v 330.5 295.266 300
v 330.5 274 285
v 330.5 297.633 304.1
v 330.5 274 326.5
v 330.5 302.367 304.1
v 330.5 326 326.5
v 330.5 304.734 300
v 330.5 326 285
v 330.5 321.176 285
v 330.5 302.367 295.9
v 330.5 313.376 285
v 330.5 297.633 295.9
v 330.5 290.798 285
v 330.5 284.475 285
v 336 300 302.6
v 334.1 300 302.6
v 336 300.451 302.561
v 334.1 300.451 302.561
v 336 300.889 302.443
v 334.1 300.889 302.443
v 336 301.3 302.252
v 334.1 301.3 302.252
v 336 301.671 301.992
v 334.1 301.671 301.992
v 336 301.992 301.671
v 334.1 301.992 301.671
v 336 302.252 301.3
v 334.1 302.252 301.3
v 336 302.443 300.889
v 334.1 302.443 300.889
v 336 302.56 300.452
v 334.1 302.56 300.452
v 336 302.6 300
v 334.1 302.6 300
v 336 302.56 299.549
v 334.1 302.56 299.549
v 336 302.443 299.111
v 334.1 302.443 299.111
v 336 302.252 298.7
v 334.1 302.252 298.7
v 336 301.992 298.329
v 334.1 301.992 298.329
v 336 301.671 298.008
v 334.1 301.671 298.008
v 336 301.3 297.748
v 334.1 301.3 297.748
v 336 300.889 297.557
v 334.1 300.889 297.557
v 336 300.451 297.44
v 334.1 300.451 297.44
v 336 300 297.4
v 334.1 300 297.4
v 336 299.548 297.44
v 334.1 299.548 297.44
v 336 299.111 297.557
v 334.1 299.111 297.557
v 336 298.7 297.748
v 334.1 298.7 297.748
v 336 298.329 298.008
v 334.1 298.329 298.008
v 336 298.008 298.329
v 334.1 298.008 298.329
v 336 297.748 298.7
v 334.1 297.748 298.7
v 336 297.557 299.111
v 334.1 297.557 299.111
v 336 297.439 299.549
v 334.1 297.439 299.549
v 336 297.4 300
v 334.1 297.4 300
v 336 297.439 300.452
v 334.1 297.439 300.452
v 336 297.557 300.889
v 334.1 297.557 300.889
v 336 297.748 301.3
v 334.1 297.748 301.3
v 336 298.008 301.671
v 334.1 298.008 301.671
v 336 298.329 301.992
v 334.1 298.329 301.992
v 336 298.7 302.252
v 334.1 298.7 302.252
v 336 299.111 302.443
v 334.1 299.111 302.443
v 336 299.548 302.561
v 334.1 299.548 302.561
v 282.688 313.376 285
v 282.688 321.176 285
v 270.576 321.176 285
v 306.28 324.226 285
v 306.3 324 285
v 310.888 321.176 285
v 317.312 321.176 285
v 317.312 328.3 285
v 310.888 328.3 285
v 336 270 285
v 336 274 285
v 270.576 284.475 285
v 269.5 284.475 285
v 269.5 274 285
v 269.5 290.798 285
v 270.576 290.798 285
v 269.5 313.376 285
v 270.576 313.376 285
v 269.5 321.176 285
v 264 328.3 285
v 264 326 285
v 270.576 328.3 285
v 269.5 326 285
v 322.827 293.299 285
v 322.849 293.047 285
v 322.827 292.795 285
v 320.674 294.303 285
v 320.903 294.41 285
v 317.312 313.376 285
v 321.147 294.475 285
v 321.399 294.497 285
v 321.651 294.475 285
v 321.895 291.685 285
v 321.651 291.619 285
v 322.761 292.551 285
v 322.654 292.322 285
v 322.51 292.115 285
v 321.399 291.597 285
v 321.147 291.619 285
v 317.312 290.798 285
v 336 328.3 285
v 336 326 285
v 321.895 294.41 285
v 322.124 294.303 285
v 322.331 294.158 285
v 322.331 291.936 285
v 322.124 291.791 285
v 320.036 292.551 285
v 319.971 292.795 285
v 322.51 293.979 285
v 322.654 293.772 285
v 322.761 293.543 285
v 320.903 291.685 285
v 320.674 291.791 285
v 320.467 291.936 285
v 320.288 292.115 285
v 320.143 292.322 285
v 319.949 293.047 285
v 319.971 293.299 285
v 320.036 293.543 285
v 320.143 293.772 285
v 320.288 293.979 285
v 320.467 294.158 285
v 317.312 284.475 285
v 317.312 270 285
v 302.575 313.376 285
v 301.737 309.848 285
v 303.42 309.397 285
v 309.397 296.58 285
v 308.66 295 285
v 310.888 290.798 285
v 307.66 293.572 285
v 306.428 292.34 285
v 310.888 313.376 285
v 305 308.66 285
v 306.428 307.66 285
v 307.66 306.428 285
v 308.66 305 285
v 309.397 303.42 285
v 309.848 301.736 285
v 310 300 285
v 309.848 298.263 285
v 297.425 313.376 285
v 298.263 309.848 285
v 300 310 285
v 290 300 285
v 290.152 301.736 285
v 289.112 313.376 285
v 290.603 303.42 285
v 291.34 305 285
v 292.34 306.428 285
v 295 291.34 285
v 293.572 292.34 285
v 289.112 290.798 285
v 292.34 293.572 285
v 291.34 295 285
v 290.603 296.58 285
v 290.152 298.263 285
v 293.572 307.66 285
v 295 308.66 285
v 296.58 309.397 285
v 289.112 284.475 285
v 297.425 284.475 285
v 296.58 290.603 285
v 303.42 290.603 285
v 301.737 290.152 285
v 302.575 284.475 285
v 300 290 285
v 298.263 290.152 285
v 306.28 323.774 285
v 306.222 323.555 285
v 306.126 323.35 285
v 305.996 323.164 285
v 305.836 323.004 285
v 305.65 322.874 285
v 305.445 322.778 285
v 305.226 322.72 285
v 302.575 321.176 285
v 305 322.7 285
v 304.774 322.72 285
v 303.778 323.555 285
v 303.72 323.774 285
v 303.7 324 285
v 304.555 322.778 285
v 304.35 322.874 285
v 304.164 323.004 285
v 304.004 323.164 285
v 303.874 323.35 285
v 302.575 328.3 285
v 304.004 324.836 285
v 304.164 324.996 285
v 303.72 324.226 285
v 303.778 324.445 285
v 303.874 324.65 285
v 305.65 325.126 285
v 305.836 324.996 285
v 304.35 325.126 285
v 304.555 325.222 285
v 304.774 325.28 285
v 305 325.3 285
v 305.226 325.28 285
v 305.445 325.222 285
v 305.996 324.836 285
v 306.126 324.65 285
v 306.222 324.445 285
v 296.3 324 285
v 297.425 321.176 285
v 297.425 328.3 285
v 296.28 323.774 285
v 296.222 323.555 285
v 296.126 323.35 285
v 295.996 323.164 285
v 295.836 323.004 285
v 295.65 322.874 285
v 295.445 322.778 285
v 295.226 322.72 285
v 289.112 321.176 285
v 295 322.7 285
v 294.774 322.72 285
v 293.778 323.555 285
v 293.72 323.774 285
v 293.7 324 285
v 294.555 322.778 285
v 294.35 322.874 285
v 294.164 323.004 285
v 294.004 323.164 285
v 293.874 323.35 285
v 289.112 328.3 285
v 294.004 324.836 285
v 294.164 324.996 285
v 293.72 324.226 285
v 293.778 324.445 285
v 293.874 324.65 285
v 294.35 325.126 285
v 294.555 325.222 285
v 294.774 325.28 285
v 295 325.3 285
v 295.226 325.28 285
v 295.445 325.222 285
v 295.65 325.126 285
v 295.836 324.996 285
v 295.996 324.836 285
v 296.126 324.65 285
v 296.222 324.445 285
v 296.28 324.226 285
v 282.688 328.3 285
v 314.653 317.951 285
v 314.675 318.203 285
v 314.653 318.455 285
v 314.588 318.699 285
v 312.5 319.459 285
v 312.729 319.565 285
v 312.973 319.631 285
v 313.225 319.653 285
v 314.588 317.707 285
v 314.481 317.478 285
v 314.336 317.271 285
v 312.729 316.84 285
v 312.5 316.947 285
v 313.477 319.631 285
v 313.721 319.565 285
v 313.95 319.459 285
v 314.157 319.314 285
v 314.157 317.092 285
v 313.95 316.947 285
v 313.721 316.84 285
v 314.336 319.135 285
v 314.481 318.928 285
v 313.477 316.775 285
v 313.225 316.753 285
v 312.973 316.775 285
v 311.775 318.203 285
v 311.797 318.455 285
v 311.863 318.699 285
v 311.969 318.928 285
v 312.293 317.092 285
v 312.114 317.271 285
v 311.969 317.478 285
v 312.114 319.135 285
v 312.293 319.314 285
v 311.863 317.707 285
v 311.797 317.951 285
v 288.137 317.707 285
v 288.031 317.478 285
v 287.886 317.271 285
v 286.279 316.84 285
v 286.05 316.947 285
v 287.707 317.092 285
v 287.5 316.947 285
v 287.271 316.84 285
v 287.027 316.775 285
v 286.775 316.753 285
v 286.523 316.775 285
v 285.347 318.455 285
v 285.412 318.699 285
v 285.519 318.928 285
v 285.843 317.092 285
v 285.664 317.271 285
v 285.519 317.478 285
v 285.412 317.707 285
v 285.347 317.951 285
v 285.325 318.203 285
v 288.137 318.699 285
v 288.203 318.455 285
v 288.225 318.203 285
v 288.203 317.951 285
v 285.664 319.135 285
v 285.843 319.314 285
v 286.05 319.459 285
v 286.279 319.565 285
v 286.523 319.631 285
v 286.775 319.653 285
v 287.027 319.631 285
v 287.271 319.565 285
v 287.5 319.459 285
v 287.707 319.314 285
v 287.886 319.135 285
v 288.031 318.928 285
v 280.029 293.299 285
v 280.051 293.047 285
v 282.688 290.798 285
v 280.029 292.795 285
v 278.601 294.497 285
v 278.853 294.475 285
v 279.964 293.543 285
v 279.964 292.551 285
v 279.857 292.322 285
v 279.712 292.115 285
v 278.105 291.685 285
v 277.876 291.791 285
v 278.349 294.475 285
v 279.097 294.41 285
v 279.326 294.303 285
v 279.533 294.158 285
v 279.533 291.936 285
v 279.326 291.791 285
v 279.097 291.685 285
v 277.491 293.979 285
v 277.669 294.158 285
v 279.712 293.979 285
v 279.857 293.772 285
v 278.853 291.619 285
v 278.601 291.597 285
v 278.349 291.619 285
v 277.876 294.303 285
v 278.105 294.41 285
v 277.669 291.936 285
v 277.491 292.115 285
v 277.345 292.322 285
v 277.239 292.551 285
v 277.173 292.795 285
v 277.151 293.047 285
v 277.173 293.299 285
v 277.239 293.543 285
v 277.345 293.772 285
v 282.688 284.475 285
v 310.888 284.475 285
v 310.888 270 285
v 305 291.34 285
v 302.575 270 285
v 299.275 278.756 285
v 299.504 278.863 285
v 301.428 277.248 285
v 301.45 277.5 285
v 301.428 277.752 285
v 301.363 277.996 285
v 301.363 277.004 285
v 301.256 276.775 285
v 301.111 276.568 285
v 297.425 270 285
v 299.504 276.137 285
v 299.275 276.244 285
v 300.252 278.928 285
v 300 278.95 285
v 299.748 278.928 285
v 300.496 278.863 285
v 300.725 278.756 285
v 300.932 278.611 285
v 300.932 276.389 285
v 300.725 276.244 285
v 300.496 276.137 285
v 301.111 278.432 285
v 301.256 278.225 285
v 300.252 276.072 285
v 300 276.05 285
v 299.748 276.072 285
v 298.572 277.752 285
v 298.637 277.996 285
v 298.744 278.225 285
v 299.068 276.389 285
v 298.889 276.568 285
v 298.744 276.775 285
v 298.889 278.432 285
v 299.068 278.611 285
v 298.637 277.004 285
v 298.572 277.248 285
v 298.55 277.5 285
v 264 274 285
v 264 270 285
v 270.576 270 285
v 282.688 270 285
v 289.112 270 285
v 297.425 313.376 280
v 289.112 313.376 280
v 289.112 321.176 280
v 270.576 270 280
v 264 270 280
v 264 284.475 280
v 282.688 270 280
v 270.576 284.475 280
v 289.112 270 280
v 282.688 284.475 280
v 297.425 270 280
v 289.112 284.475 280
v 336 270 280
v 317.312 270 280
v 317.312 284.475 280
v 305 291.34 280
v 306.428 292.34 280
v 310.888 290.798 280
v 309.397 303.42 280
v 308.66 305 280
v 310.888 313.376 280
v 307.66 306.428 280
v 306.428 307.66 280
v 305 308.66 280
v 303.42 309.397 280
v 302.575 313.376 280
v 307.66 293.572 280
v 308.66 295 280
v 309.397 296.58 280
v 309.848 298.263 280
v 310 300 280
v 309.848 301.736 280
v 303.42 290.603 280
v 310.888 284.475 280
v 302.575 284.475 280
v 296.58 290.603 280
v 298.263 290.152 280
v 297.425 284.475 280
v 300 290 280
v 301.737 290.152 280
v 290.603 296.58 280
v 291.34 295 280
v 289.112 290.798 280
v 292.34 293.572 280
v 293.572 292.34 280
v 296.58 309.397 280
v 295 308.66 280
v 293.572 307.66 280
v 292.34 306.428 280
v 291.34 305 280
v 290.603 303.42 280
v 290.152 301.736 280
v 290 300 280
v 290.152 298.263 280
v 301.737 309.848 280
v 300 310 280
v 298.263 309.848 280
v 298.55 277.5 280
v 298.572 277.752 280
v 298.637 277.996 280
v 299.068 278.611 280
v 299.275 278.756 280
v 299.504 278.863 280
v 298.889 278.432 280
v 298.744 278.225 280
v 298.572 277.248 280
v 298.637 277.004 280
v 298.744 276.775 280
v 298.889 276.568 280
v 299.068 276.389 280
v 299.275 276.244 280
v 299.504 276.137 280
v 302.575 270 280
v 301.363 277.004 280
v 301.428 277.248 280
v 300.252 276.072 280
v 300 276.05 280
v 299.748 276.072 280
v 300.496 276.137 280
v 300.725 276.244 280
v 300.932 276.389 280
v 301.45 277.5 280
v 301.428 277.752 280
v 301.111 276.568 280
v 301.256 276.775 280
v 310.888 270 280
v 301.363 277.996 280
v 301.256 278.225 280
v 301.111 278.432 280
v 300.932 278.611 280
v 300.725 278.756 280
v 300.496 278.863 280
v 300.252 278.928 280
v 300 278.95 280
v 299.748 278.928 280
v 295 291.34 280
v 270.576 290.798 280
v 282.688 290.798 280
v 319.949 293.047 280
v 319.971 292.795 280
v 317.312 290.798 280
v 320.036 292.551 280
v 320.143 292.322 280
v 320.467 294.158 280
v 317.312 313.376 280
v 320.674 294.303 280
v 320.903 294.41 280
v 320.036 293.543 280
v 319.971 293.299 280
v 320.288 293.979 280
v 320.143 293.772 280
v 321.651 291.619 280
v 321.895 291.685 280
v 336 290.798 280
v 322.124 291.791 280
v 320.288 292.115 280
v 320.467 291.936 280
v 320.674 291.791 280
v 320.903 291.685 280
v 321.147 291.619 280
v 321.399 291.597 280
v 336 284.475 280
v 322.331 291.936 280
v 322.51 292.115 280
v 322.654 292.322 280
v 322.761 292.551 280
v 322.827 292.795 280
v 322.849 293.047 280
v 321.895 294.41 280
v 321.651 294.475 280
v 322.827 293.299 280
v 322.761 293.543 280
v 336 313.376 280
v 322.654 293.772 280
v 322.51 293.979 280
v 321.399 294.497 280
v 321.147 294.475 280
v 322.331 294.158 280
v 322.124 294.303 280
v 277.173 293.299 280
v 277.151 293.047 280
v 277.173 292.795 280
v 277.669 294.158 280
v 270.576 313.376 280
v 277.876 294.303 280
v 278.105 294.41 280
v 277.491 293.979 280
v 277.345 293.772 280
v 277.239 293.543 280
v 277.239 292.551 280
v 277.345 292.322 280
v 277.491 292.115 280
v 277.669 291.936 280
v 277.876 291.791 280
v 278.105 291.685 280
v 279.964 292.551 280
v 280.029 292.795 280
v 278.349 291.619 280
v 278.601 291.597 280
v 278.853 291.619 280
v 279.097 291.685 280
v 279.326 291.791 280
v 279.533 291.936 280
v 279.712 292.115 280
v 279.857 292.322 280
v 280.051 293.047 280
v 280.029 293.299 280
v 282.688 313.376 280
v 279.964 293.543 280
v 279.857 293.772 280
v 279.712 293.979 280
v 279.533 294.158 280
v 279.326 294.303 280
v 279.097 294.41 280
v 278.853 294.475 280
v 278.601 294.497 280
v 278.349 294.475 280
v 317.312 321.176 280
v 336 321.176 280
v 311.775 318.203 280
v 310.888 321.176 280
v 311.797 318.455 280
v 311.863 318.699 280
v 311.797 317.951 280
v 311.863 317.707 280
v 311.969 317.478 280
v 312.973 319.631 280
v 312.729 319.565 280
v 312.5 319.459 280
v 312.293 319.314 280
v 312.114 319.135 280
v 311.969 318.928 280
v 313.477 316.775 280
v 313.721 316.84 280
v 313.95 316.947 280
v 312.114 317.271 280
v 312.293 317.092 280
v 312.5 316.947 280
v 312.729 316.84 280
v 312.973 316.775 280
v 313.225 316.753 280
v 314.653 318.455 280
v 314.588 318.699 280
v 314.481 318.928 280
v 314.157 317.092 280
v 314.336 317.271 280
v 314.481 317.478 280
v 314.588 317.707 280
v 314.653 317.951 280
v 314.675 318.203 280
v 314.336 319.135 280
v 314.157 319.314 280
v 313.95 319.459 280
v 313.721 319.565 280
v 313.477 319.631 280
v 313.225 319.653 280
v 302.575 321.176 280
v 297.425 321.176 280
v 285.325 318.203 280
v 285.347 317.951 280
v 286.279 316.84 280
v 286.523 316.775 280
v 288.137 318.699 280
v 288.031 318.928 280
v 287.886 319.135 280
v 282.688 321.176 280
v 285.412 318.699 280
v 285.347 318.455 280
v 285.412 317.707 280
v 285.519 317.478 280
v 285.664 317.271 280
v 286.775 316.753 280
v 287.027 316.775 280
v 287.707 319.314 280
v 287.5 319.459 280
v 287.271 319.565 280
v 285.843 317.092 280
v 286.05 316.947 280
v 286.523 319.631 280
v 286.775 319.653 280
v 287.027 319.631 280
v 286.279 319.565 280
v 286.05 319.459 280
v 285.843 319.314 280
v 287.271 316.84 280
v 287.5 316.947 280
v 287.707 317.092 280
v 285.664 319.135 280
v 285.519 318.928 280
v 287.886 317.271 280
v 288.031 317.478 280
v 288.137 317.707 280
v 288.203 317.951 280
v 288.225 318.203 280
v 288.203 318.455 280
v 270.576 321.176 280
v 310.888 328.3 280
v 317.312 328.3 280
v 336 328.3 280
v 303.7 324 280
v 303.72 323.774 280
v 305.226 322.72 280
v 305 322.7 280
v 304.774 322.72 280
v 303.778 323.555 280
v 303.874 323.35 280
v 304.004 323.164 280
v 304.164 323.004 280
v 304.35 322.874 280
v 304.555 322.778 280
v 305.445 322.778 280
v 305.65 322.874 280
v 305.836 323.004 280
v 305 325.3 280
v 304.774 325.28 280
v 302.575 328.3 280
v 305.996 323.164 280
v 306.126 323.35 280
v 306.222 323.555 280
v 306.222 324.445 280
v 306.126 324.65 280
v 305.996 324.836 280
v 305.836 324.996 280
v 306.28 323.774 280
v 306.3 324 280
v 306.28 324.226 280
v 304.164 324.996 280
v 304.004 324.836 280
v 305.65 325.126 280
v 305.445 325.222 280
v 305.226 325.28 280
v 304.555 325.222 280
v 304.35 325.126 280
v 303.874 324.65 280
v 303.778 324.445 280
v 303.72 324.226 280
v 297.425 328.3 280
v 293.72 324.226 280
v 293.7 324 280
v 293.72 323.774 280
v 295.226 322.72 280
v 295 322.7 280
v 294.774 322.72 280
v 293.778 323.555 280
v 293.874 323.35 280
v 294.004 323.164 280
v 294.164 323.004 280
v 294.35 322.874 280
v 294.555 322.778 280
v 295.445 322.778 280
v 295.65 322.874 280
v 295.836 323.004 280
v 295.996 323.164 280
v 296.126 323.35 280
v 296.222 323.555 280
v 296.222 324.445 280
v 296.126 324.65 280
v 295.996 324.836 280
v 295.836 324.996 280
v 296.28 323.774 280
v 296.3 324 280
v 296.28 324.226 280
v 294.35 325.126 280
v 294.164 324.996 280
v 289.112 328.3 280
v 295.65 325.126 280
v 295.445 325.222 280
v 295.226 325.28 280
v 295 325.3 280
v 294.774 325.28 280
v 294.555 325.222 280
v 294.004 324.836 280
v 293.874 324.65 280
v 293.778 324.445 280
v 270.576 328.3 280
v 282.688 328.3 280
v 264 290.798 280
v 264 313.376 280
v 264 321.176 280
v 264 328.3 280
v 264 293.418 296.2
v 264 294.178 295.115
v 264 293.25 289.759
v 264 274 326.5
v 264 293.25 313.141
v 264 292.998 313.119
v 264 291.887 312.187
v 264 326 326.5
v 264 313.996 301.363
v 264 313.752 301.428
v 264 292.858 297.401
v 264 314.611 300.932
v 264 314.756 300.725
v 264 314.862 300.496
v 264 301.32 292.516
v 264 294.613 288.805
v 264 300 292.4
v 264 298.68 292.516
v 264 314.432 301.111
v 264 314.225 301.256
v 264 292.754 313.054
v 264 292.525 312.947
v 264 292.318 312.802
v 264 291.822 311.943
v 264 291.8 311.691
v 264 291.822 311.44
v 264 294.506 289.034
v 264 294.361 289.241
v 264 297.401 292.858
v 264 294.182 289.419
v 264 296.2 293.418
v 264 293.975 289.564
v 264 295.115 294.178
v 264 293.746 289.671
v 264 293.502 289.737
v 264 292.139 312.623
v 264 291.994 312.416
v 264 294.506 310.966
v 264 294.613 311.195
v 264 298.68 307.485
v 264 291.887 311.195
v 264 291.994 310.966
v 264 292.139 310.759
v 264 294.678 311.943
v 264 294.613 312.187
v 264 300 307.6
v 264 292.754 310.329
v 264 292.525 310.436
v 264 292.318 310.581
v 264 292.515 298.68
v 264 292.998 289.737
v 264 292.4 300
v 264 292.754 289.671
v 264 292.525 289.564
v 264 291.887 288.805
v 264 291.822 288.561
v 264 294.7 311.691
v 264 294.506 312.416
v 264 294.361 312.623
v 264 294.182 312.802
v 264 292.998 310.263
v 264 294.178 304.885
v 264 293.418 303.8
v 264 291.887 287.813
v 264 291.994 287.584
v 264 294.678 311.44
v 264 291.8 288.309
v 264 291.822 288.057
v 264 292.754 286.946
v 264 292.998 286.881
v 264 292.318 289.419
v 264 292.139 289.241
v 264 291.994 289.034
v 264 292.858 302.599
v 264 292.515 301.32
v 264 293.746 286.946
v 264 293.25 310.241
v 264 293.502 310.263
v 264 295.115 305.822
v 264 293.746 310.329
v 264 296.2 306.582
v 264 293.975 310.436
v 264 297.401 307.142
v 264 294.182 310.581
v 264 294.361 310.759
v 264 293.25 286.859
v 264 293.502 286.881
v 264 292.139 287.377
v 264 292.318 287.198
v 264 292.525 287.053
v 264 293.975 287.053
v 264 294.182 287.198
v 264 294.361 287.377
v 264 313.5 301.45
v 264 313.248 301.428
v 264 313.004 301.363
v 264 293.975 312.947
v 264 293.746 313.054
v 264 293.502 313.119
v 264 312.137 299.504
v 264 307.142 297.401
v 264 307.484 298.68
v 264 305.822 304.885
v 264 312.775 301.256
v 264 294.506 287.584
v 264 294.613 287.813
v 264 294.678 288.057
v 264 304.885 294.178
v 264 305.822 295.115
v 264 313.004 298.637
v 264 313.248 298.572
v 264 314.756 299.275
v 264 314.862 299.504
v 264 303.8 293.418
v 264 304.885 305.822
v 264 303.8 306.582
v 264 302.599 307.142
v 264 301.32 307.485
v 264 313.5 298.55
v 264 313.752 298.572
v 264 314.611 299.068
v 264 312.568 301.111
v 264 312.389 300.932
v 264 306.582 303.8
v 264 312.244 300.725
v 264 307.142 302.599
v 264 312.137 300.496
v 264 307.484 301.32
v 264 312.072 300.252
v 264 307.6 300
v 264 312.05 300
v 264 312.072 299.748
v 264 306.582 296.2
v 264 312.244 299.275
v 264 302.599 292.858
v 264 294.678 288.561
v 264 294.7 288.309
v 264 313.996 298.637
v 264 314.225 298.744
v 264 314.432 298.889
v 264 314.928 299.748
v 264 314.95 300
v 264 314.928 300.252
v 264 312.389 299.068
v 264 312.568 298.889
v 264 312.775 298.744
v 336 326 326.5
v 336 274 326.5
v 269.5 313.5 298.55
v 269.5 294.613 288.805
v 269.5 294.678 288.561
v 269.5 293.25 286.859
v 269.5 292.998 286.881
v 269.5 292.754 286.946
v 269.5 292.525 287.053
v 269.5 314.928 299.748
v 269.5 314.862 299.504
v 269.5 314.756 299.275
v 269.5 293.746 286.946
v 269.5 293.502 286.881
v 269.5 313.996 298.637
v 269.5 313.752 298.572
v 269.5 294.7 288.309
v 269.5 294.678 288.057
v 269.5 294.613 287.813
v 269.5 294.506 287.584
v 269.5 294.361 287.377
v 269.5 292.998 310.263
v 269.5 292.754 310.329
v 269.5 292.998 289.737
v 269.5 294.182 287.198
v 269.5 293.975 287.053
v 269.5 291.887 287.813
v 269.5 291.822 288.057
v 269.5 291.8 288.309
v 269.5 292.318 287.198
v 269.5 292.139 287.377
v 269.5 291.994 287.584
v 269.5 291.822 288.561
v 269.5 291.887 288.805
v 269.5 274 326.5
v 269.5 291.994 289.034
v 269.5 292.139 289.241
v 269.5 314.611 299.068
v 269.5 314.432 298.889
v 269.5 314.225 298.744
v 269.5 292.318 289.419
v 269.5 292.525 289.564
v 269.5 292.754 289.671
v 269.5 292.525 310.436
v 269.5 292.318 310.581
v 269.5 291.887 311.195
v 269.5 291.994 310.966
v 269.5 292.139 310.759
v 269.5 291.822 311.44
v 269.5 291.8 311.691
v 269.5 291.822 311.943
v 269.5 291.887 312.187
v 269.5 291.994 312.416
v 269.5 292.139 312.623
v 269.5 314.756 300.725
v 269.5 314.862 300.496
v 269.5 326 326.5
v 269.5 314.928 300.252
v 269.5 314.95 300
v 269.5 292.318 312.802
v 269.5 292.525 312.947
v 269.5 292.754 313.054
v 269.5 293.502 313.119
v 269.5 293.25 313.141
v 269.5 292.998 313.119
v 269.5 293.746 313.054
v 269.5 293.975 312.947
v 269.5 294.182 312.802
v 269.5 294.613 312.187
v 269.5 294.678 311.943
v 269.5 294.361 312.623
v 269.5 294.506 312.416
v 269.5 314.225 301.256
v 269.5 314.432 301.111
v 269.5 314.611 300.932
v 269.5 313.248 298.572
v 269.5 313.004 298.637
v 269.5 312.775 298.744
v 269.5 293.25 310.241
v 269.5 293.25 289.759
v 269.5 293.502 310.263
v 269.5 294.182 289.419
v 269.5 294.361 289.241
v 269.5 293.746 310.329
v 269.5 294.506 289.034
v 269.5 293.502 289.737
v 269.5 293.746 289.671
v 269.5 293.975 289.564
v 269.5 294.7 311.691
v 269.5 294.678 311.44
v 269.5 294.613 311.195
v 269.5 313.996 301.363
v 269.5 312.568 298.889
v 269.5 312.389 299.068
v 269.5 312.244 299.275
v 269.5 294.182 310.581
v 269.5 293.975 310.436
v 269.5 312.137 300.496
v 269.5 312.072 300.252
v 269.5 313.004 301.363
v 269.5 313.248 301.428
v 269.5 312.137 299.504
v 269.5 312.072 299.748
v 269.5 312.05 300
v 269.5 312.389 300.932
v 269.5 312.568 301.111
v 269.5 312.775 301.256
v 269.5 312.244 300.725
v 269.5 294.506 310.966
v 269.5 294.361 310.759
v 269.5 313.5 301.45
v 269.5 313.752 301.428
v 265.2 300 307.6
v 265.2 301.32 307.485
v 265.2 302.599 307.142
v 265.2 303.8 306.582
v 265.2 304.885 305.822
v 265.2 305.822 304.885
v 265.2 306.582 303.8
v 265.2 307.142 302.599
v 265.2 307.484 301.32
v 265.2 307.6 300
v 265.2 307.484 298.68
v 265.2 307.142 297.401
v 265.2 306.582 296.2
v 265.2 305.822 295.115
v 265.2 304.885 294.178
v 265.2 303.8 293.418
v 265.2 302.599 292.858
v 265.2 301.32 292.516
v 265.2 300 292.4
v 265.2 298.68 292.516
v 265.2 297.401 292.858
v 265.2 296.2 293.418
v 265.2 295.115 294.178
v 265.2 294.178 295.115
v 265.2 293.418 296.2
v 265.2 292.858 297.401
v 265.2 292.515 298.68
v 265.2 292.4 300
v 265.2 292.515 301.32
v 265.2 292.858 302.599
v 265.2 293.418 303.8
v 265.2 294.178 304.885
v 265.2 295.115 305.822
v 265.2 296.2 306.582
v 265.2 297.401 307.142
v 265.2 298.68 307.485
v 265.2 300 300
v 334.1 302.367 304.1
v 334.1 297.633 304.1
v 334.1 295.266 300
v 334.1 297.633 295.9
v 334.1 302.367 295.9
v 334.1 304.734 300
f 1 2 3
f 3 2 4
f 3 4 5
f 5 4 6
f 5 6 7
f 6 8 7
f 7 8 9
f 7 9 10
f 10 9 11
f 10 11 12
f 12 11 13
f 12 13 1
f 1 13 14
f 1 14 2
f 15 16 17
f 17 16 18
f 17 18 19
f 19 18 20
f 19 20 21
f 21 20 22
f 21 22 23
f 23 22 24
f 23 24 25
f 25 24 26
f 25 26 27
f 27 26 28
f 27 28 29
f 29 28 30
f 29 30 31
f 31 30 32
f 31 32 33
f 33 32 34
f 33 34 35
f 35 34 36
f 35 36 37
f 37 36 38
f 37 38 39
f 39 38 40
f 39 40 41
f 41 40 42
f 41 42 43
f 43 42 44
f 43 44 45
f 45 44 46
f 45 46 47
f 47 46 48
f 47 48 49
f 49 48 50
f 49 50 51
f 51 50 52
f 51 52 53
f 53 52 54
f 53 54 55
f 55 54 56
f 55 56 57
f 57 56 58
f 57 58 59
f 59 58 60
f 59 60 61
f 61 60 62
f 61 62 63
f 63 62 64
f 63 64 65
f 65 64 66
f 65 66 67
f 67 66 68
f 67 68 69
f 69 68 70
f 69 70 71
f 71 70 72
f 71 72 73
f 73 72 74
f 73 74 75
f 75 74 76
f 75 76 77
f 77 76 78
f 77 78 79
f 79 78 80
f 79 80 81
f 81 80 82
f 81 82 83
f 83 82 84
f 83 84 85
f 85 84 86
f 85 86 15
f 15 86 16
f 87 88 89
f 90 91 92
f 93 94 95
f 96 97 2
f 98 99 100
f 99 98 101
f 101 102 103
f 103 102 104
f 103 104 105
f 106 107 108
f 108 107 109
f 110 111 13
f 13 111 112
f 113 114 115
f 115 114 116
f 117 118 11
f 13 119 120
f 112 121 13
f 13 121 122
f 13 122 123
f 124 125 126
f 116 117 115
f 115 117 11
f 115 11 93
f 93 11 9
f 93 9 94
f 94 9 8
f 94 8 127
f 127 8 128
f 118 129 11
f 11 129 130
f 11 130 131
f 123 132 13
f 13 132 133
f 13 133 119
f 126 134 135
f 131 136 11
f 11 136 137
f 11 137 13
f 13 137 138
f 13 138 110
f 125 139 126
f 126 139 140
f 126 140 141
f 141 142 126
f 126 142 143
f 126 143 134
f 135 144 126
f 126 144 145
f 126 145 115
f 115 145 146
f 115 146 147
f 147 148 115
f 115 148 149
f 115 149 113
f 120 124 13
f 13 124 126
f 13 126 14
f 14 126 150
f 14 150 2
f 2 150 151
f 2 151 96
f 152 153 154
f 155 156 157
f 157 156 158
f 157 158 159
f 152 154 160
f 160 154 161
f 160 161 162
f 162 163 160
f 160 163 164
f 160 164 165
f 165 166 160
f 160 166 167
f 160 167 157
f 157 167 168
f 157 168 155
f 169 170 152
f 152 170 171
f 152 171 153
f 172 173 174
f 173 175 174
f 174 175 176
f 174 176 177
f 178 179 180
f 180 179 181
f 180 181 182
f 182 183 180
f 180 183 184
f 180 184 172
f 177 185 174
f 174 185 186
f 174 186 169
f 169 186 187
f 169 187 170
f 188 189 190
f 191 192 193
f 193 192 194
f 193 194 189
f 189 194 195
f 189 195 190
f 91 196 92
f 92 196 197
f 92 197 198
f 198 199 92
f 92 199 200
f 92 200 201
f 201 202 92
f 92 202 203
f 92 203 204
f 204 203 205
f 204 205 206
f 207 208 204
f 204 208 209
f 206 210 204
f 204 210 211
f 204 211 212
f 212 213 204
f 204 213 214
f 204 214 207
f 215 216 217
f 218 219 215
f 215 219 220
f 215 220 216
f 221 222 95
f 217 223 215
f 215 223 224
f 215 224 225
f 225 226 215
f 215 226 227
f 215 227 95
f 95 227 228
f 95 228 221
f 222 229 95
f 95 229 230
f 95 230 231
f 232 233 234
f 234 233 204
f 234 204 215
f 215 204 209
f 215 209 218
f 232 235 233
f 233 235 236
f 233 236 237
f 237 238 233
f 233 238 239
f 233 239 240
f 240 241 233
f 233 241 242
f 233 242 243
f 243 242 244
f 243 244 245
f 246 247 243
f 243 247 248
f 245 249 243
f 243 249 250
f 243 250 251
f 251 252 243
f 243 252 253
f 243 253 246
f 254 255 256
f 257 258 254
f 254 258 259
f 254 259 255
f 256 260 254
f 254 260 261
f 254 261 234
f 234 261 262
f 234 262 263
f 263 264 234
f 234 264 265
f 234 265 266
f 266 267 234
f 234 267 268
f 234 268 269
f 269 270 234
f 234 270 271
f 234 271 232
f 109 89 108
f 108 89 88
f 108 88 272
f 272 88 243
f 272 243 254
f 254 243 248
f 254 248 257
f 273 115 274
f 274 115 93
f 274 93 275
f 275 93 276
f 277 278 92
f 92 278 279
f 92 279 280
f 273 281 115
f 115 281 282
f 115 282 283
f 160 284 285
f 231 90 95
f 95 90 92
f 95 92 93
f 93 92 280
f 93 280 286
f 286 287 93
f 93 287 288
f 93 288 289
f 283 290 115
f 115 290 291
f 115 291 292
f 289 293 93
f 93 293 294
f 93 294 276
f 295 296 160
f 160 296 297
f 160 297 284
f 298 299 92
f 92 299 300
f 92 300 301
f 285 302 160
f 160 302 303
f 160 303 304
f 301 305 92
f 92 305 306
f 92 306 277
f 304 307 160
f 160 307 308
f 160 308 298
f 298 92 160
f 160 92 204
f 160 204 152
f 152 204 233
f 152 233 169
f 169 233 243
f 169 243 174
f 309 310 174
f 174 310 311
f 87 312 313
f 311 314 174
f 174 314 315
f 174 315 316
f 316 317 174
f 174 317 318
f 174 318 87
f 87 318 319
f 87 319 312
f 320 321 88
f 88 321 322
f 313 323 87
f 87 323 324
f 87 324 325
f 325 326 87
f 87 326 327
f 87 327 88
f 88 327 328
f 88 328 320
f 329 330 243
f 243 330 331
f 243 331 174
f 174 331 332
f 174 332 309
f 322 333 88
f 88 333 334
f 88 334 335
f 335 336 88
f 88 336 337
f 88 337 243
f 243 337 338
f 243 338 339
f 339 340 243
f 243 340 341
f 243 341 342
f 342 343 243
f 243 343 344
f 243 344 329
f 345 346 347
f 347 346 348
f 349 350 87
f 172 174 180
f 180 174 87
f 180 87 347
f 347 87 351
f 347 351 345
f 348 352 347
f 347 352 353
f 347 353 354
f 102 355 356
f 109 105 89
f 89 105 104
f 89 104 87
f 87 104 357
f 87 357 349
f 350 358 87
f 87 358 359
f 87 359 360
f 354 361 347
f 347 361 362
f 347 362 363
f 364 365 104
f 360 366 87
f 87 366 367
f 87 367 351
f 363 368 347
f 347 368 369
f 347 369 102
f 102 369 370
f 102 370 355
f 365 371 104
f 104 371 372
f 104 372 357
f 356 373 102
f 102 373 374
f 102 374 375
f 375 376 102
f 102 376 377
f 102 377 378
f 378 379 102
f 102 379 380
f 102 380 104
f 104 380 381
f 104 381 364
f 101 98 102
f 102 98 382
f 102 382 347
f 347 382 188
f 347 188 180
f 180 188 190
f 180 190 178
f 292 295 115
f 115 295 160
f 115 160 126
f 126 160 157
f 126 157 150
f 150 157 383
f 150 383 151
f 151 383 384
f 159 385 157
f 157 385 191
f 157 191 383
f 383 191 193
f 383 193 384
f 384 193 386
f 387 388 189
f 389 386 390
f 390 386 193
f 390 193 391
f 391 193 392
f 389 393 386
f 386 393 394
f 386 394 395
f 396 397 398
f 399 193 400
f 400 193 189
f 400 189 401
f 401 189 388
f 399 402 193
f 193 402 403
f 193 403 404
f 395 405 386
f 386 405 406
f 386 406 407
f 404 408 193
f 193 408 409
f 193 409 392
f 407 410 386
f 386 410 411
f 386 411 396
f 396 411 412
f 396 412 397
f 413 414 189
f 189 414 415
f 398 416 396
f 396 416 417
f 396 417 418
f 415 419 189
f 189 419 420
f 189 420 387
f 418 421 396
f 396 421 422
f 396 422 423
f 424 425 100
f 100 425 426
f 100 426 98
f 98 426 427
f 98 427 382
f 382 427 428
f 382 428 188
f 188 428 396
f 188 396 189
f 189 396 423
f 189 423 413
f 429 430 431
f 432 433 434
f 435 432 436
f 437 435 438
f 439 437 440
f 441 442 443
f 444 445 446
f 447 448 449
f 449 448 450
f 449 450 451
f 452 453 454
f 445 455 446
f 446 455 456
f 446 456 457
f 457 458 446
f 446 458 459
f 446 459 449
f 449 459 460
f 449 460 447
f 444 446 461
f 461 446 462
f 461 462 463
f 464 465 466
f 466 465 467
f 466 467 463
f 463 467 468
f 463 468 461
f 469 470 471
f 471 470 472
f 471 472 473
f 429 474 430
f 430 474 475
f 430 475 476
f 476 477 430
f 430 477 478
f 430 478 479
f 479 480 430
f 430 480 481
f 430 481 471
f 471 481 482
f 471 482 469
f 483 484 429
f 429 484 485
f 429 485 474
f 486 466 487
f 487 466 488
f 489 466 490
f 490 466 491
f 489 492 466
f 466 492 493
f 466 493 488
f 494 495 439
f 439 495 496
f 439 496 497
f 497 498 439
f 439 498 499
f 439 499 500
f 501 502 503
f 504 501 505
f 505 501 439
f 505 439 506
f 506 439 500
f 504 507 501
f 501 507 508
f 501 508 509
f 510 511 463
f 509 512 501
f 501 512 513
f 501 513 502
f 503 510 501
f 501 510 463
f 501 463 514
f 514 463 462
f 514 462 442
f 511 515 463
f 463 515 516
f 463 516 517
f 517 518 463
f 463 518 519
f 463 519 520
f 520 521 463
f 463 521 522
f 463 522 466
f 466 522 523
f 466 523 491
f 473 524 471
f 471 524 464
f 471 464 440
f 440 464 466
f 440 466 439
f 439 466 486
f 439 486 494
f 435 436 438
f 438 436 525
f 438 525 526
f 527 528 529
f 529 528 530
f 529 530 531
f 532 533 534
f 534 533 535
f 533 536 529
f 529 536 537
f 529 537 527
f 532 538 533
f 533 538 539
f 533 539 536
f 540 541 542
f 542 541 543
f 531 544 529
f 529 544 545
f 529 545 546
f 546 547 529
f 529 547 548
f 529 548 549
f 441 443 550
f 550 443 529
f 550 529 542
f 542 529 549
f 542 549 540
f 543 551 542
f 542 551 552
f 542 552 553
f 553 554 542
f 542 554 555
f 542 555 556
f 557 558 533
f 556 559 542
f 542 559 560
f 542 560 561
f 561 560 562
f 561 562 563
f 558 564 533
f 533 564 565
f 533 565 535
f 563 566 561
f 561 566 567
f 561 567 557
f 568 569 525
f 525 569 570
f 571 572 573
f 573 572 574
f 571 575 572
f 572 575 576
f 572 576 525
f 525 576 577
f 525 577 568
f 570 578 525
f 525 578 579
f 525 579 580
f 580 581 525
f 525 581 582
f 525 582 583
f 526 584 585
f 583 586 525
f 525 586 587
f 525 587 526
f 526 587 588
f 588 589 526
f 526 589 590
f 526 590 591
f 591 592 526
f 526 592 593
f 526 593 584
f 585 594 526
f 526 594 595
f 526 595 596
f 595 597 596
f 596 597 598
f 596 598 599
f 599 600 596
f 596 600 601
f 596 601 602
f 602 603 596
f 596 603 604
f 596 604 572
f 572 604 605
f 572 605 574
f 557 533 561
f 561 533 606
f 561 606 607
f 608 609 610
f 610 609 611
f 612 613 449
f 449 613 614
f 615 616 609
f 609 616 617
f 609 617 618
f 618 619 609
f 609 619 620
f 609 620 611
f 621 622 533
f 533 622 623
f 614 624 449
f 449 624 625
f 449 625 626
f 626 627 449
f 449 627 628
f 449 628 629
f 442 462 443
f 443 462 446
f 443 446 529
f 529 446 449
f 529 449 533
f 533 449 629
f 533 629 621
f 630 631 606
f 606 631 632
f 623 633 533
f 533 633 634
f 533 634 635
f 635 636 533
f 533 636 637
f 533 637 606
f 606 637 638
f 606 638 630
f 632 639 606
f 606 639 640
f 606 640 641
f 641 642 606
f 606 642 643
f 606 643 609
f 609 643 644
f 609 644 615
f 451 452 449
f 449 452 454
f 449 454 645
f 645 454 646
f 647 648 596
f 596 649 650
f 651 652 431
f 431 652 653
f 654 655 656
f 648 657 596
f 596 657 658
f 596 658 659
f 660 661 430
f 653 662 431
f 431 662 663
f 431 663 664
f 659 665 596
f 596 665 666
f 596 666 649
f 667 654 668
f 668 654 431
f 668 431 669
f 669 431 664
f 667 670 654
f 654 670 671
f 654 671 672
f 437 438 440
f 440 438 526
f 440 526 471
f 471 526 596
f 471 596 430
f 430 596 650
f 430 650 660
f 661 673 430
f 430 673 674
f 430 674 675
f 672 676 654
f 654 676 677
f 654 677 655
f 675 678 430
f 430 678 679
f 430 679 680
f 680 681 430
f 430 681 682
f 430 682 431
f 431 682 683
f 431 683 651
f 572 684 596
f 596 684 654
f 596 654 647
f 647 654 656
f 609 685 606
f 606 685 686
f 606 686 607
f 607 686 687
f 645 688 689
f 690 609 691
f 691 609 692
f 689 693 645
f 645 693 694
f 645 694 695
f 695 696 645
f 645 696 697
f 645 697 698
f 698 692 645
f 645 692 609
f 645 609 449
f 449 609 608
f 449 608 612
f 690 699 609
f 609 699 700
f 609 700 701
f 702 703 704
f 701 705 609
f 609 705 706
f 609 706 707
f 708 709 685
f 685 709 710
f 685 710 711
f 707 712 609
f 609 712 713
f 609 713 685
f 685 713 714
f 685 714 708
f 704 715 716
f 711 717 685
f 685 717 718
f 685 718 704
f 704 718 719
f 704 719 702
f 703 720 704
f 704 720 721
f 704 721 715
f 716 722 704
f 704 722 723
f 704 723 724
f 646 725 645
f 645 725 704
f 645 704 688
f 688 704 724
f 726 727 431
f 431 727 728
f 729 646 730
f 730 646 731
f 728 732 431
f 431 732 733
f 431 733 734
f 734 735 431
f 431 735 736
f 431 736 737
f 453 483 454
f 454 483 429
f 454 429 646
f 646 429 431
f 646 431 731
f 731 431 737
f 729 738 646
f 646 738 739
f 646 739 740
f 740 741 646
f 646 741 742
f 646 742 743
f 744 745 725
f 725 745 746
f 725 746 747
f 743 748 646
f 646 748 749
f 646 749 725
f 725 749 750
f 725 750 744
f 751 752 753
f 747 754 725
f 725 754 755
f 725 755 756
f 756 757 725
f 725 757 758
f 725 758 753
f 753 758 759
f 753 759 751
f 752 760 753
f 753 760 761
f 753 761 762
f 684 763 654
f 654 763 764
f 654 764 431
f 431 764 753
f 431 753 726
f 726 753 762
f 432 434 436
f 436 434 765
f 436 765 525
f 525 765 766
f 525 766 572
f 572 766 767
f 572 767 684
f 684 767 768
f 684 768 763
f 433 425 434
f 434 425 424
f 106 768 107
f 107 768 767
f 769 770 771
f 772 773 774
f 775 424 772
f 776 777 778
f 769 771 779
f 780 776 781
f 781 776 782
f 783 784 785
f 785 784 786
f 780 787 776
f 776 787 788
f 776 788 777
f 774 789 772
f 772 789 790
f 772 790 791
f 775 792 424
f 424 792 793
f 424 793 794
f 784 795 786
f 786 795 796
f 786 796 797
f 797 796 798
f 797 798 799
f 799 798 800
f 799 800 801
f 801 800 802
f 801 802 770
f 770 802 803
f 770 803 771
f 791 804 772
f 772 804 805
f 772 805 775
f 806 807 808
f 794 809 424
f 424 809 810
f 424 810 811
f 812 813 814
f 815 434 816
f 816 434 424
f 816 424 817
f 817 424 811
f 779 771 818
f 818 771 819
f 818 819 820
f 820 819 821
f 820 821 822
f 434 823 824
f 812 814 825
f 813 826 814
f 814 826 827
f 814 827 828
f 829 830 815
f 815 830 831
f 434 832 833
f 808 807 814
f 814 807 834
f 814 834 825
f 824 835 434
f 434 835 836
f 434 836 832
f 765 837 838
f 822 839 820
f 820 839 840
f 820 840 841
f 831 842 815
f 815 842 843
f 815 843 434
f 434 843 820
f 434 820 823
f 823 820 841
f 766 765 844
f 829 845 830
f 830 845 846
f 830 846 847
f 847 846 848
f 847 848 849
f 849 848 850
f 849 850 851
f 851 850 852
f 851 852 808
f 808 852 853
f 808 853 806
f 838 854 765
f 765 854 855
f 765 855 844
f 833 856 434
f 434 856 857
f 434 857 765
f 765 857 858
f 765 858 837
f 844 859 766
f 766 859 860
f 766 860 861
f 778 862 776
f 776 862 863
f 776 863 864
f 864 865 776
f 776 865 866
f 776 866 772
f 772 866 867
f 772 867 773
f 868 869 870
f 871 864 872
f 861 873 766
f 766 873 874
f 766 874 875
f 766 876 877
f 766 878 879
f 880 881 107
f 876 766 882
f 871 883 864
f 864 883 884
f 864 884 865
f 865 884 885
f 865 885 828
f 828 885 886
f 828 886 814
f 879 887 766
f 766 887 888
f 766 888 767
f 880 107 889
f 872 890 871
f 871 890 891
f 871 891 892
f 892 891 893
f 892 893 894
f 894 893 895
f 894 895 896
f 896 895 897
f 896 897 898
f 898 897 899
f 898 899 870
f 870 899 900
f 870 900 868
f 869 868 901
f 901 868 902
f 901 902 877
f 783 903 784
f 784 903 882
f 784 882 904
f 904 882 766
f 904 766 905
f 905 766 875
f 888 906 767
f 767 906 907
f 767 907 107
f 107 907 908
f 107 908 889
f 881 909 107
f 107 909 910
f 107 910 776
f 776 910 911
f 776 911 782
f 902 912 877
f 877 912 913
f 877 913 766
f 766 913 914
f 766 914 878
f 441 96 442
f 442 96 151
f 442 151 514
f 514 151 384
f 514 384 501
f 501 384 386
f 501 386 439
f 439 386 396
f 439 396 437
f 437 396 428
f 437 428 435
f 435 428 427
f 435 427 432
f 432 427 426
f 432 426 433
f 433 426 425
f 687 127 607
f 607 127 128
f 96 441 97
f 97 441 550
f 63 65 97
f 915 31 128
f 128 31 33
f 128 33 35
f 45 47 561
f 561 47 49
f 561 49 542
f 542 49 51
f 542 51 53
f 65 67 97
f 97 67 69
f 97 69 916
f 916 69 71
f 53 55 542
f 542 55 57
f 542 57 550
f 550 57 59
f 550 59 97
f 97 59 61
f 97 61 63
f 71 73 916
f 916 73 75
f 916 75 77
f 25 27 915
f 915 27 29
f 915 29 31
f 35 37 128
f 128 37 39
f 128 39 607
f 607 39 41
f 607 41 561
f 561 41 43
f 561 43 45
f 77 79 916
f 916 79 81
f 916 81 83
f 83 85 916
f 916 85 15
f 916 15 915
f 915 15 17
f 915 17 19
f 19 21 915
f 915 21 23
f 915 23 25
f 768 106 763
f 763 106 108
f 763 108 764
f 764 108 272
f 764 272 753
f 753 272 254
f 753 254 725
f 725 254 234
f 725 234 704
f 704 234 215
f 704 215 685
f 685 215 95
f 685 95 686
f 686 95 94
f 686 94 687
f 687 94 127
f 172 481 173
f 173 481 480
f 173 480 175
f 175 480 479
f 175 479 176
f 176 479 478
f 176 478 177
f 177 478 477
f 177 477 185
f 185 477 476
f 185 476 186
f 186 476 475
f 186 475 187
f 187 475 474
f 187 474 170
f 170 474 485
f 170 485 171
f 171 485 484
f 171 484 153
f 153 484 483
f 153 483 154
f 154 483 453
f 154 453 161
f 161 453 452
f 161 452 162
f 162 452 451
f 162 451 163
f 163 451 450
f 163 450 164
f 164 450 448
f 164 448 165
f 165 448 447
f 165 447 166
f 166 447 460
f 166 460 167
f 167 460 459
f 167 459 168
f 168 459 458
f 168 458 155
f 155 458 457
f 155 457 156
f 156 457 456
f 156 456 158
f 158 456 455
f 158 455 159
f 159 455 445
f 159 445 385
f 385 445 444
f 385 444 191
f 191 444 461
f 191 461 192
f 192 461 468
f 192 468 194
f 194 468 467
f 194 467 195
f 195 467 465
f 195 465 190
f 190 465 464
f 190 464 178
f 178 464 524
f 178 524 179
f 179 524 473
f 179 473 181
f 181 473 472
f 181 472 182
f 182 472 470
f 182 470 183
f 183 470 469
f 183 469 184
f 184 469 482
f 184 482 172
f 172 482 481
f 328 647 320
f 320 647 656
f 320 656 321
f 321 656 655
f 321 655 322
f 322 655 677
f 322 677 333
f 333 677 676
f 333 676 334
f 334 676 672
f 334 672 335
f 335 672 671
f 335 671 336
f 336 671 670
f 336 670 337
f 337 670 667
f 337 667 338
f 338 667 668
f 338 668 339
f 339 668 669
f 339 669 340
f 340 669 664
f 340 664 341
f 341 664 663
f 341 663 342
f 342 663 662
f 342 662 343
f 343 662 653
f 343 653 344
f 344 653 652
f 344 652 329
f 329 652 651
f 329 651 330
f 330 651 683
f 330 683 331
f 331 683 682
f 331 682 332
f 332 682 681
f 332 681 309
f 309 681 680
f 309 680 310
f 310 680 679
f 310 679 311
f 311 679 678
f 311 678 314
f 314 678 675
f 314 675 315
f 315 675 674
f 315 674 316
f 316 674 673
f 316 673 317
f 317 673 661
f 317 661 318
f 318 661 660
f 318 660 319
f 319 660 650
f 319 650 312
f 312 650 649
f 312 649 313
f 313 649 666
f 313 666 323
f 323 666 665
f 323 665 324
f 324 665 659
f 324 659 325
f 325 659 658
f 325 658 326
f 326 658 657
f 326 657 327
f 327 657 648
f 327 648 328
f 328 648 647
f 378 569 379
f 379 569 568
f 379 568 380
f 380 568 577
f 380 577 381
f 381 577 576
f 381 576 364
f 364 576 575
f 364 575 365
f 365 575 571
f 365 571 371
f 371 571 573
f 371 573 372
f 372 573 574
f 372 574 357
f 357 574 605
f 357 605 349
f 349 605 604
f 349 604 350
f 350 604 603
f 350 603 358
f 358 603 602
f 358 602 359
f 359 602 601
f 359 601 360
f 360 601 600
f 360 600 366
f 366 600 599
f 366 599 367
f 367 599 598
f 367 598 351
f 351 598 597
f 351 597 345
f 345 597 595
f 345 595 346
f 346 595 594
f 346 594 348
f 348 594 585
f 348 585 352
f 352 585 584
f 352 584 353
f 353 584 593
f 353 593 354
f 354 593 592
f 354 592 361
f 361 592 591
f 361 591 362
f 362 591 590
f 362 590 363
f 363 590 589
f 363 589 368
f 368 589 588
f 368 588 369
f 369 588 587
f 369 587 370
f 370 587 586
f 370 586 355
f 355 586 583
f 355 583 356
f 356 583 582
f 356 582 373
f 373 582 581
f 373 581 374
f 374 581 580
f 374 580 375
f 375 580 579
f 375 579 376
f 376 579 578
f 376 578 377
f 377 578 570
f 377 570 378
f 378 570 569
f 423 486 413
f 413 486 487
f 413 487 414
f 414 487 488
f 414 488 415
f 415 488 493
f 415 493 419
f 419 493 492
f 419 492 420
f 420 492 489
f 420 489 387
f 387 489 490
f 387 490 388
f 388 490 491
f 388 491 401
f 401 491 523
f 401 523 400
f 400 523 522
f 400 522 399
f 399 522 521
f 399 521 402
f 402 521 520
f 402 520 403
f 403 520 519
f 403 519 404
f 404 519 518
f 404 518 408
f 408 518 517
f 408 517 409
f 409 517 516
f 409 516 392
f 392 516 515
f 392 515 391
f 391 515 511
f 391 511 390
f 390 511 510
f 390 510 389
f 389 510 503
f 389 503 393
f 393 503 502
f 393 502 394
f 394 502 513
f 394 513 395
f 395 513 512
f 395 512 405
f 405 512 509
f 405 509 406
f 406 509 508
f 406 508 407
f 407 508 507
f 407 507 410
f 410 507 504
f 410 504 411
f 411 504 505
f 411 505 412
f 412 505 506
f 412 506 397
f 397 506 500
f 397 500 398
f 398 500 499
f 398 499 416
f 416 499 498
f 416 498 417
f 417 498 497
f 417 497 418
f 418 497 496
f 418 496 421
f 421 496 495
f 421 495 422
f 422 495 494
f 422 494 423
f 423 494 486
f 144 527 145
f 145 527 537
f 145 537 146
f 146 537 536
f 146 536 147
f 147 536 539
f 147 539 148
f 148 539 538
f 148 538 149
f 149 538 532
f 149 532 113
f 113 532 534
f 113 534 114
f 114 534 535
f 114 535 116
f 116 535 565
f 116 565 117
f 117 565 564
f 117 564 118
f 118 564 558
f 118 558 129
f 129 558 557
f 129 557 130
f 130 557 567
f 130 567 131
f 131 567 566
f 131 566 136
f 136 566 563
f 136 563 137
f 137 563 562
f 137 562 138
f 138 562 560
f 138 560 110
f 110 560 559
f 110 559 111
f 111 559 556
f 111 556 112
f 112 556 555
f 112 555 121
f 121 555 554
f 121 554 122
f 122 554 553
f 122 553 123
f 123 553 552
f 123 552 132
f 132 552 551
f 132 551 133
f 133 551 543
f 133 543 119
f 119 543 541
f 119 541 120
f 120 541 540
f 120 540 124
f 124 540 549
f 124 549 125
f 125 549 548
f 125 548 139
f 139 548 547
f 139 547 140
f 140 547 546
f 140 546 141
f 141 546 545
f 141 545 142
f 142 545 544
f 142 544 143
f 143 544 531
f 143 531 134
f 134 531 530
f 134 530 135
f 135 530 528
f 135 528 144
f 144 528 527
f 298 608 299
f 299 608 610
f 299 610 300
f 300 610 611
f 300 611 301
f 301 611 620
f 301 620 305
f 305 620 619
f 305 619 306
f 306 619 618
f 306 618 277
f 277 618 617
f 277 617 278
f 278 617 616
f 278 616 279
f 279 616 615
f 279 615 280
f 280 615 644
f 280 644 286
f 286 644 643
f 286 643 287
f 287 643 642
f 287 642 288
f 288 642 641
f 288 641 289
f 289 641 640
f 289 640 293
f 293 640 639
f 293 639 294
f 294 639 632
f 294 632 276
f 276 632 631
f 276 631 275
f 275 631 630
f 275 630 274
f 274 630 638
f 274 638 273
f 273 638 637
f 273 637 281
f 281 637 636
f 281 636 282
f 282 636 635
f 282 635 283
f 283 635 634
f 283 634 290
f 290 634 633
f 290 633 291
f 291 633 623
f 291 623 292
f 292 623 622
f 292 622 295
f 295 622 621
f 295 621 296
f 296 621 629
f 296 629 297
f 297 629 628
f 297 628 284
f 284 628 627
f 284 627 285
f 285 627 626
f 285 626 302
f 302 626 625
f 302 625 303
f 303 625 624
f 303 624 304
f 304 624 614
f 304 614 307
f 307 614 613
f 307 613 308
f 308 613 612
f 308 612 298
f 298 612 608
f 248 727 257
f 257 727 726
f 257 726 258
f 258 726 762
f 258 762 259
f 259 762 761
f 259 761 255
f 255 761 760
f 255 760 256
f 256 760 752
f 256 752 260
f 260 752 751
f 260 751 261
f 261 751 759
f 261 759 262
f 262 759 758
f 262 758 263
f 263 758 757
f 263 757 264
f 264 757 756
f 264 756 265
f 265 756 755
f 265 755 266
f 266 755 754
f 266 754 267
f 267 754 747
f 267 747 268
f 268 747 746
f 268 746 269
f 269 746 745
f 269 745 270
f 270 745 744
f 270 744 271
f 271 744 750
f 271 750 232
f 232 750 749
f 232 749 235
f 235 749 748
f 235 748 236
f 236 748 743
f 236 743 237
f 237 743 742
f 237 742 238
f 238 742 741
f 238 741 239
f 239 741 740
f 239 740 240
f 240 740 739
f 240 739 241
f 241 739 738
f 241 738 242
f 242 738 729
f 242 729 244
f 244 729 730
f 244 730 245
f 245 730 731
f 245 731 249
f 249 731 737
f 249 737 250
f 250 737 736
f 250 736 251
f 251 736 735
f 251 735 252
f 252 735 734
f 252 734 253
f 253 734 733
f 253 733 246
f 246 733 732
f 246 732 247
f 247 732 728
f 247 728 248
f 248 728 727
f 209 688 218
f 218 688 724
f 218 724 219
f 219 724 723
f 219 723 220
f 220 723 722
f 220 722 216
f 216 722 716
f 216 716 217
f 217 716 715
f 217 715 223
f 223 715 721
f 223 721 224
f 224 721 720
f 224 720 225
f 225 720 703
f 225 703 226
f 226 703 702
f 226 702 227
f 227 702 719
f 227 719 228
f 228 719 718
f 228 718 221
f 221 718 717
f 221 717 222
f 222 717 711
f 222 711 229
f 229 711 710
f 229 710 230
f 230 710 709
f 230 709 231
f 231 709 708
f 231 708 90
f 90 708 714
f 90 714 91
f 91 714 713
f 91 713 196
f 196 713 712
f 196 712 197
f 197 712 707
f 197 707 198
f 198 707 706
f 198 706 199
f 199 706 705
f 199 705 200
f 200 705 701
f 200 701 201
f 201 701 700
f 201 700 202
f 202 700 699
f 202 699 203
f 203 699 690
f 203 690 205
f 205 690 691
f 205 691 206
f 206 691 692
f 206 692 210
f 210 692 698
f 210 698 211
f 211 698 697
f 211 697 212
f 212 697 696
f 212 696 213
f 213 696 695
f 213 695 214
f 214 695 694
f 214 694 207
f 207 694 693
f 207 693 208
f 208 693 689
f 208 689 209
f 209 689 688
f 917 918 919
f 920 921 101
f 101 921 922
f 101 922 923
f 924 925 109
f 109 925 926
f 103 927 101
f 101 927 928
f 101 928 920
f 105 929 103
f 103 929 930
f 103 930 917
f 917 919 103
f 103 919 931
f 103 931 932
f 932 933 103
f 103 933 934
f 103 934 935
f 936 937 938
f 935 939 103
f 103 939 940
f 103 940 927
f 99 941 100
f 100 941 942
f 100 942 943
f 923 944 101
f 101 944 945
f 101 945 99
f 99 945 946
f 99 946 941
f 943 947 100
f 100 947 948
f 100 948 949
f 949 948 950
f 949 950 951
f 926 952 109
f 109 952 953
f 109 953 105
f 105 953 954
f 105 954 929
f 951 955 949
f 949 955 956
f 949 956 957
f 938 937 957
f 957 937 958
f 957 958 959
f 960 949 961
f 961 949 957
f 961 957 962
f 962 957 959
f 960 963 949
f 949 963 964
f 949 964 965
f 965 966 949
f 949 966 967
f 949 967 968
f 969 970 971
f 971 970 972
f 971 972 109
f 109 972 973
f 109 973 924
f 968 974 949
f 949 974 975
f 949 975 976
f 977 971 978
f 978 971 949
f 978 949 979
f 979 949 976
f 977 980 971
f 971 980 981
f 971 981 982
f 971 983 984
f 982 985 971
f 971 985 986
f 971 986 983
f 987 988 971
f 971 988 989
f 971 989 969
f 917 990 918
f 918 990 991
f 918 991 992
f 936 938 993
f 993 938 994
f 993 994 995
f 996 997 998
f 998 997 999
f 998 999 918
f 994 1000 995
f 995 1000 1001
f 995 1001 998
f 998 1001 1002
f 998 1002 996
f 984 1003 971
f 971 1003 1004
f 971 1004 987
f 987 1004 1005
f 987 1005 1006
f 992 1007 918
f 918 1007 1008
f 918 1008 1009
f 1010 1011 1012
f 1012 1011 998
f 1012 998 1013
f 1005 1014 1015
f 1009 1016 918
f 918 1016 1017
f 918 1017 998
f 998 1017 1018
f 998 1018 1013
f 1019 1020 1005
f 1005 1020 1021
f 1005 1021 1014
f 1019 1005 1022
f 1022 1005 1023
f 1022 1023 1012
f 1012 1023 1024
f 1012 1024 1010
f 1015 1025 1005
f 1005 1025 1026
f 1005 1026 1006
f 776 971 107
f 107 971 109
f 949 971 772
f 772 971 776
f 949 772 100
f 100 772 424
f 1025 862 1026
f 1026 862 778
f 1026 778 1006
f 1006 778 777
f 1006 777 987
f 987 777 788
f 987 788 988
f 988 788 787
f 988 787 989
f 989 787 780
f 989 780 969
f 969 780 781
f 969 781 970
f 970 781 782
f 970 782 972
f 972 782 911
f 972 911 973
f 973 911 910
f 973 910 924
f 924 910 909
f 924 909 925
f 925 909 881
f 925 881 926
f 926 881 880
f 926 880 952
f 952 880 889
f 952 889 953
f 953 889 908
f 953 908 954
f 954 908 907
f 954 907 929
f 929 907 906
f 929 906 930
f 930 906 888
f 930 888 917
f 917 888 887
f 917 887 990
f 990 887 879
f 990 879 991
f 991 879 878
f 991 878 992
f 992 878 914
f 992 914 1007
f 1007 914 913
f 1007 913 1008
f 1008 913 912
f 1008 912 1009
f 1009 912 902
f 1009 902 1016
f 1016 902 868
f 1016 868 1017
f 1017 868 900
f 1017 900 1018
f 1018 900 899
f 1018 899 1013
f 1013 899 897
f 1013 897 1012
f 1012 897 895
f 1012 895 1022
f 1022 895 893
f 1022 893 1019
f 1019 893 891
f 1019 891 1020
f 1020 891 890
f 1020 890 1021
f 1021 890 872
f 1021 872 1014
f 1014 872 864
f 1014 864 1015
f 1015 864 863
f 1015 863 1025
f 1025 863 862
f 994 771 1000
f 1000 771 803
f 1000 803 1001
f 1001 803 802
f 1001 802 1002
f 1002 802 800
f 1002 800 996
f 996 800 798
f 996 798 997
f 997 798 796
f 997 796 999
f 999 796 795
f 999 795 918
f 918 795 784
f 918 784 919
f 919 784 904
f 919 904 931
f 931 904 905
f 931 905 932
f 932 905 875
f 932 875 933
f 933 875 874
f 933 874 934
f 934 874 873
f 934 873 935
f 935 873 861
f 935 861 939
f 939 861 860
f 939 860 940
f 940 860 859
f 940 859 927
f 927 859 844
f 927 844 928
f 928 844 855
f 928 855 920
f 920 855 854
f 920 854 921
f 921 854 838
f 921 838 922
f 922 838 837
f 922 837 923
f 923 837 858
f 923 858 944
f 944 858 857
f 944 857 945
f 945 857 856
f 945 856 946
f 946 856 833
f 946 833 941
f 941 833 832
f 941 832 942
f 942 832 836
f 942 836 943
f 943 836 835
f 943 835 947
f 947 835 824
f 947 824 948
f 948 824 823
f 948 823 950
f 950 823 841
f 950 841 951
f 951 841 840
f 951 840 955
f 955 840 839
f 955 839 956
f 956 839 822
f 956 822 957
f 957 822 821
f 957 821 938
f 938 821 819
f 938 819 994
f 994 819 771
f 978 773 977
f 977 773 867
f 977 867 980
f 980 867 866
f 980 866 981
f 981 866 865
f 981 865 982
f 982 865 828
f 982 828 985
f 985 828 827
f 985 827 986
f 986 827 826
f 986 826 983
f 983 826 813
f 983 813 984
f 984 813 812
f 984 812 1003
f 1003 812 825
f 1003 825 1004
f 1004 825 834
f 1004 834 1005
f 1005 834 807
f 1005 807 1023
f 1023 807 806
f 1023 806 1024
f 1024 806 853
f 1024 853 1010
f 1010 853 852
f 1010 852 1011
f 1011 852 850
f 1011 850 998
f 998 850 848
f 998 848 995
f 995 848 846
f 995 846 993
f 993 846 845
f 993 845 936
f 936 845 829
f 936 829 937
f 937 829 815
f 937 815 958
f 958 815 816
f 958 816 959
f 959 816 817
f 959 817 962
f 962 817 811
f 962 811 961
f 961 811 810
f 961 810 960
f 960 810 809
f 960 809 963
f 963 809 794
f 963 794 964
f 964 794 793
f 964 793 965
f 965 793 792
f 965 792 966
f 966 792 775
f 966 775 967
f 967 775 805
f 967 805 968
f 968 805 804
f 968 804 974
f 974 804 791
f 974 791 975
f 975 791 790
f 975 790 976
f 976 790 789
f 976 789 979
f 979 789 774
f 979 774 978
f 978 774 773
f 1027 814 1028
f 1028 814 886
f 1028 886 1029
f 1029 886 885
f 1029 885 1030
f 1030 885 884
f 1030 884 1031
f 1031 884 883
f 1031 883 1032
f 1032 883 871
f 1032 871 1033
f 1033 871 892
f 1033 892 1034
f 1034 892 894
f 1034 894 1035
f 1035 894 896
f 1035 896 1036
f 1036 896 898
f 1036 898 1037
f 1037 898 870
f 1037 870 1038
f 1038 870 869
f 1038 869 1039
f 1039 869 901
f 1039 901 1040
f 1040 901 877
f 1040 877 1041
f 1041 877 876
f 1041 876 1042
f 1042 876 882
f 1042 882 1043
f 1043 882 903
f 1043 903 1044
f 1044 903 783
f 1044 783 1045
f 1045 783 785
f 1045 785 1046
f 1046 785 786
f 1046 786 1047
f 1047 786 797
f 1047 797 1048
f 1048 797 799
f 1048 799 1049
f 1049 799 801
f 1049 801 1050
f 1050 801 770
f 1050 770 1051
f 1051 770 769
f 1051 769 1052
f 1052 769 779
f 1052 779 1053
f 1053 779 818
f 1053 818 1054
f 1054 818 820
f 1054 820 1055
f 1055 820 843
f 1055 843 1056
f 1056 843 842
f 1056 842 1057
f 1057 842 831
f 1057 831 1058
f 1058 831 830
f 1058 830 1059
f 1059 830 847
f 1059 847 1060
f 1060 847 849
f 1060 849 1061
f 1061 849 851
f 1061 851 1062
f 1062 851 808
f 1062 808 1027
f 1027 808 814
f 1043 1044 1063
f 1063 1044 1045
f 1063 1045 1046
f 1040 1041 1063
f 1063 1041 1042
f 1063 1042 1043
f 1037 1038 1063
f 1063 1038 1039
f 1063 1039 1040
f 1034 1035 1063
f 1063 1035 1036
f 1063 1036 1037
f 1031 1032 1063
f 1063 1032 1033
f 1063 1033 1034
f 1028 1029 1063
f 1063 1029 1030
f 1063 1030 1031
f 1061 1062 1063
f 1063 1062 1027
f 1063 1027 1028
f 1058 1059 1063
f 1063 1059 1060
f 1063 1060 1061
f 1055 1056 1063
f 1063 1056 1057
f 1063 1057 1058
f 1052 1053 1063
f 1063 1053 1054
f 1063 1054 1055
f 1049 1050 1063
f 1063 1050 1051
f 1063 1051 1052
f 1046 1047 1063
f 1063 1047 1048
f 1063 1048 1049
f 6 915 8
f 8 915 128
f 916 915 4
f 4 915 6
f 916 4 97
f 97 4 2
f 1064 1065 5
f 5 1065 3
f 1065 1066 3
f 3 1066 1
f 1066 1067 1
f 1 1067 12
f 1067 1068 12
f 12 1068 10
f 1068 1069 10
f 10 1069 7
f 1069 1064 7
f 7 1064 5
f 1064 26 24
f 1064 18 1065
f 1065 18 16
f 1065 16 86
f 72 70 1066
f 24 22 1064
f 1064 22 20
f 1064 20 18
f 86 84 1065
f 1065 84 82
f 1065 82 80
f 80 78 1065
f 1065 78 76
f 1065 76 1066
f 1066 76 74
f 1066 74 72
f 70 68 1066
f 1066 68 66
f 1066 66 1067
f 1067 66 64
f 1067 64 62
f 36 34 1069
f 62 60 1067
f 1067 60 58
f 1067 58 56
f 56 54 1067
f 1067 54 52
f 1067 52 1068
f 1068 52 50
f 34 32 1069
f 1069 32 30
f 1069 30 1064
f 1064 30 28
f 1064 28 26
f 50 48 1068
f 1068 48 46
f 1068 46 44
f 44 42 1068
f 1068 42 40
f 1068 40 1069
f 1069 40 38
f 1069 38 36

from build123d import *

# Parameters (mm, degrees)
SKETCH1_W           = 72
SKETCH1_H           = 58.3
SKETCH1_R           = 10
SKETCH1_R_2         = 1.45
SKETCH1_R_3         = 1.3
BOSS_EXTRUDE1_DEPTH = 5
SKETCH2_W           = 46.5
SKETCH2_H           = 52
SKETCH2_R           = 1.45
BOSS_EXTRUDE2_DEPTH = 5.5
SKETCH3_R           = 7.6
CUT_EXTRUDE1_DEPTH  = 1.2
SKETCH4_W           = 46.5
SKETCH4_H           = 52
SKETCH4_R           = 2.6
BOSS_EXTRUDE3_DEPTH = 5.5
CUT_EXTRUDE2_DEPTH  = 3.6


with BuildPart() as part:
    # Sketch1 → Boss-Extrude1 (new body)
    with BuildSketch(Plane.XY.offset(280)):
        with Locations((300, 299.15)):
            Rectangle(SKETCH1_W, SKETCH1_H)
        with Locations((300, 300)):
            Circle(SKETCH1_R, mode=Mode.SUBTRACT)
        with Locations((286.774831823, 318.202882373)):
            Circle(SKETCH1_R_2, mode=Mode.SUBTRACT)
        with Locations((278.601228383, 293.047117627)):
            Circle(SKETCH1_R_2, mode=Mode.SUBTRACT)
        with Locations((300, 277.5)):
            Circle(SKETCH1_R_2, mode=Mode.SUBTRACT)
        with Locations((321.398771617, 293.047117627)):
            Circle(SKETCH1_R_2, mode=Mode.SUBTRACT)
        with Locations((313.225168177, 318.202882373)):
            Circle(SKETCH1_R_2, mode=Mode.SUBTRACT)
        with Locations((295, 324)):
            Circle(SKETCH1_R_3, mode=Mode.SUBTRACT)
        with Locations((305, 324)):
            Circle(SKETCH1_R_3, mode=Mode.SUBTRACT)
    extrude(amount=BOSS_EXTRUDE1_DEPTH)

    # Sketch2 → Boss-Extrude2 (add)
    with BuildSketch(Plane(origin=(264, 0, 0), x_dir=(0, 0, -1), z_dir=(1, 0, 0))):
        with Locations((-303.25, 300)):
            Rectangle(SKETCH2_W, SKETCH2_H)
        with Locations((-300, 313.5)):
            Circle(SKETCH2_R, mode=Mode.SUBTRACT)
        with Locations((-288.308657049, 293.25)):
            Circle(SKETCH2_R, mode=Mode.SUBTRACT)
        with Locations((-311.691342951, 293.25)):
            Circle(SKETCH2_R, mode=Mode.SUBTRACT)
    extrude(amount=BOSS_EXTRUDE2_DEPTH)

    # Sketch3 → Cut-Extrude1 (cut)
    with BuildSketch(Plane(origin=(264, 0, 0), x_dir=(0, 0, -1), z_dir=(1, 0, 0))):
        with Locations((-300, 300)):
            Circle(SKETCH3_R)
    extrude(amount=CUT_EXTRUDE1_DEPTH, mode=Mode.SUBTRACT)

    # Sketch4 → Boss-Extrude3 (add)
    with BuildSketch(Plane(origin=(330.5, 0, 0), x_dir=(0, 0, -1), z_dir=(1, 0, 0))):
        with Locations((-303.25, 300)):
            Rectangle(SKETCH4_W, SKETCH4_H)
        with Locations((-300, 300)):
            Circle(SKETCH4_R, mode=Mode.SUBTRACT)
    extrude(amount=BOSS_EXTRUDE3_DEPTH)

    # Sketch5 → Cut-Extrude2 (cut)
    with BuildSketch(Plane(origin=(330.5, 0, 0), x_dir=(0, 0, -1), z_dir=(1, 0, 0))):
        Polygon((-304.1, 302.367136104), (-300, 304.734272207), (-295.9, 302.367136104), (-295.9, 297.632863896), (-300, 295.265727793), (-304.1, 297.632863896), align=None)
    extrude(amount=CUT_EXTRUDE2_DEPTH, mode=Mode.SUBTRACT)


solid = part.part
